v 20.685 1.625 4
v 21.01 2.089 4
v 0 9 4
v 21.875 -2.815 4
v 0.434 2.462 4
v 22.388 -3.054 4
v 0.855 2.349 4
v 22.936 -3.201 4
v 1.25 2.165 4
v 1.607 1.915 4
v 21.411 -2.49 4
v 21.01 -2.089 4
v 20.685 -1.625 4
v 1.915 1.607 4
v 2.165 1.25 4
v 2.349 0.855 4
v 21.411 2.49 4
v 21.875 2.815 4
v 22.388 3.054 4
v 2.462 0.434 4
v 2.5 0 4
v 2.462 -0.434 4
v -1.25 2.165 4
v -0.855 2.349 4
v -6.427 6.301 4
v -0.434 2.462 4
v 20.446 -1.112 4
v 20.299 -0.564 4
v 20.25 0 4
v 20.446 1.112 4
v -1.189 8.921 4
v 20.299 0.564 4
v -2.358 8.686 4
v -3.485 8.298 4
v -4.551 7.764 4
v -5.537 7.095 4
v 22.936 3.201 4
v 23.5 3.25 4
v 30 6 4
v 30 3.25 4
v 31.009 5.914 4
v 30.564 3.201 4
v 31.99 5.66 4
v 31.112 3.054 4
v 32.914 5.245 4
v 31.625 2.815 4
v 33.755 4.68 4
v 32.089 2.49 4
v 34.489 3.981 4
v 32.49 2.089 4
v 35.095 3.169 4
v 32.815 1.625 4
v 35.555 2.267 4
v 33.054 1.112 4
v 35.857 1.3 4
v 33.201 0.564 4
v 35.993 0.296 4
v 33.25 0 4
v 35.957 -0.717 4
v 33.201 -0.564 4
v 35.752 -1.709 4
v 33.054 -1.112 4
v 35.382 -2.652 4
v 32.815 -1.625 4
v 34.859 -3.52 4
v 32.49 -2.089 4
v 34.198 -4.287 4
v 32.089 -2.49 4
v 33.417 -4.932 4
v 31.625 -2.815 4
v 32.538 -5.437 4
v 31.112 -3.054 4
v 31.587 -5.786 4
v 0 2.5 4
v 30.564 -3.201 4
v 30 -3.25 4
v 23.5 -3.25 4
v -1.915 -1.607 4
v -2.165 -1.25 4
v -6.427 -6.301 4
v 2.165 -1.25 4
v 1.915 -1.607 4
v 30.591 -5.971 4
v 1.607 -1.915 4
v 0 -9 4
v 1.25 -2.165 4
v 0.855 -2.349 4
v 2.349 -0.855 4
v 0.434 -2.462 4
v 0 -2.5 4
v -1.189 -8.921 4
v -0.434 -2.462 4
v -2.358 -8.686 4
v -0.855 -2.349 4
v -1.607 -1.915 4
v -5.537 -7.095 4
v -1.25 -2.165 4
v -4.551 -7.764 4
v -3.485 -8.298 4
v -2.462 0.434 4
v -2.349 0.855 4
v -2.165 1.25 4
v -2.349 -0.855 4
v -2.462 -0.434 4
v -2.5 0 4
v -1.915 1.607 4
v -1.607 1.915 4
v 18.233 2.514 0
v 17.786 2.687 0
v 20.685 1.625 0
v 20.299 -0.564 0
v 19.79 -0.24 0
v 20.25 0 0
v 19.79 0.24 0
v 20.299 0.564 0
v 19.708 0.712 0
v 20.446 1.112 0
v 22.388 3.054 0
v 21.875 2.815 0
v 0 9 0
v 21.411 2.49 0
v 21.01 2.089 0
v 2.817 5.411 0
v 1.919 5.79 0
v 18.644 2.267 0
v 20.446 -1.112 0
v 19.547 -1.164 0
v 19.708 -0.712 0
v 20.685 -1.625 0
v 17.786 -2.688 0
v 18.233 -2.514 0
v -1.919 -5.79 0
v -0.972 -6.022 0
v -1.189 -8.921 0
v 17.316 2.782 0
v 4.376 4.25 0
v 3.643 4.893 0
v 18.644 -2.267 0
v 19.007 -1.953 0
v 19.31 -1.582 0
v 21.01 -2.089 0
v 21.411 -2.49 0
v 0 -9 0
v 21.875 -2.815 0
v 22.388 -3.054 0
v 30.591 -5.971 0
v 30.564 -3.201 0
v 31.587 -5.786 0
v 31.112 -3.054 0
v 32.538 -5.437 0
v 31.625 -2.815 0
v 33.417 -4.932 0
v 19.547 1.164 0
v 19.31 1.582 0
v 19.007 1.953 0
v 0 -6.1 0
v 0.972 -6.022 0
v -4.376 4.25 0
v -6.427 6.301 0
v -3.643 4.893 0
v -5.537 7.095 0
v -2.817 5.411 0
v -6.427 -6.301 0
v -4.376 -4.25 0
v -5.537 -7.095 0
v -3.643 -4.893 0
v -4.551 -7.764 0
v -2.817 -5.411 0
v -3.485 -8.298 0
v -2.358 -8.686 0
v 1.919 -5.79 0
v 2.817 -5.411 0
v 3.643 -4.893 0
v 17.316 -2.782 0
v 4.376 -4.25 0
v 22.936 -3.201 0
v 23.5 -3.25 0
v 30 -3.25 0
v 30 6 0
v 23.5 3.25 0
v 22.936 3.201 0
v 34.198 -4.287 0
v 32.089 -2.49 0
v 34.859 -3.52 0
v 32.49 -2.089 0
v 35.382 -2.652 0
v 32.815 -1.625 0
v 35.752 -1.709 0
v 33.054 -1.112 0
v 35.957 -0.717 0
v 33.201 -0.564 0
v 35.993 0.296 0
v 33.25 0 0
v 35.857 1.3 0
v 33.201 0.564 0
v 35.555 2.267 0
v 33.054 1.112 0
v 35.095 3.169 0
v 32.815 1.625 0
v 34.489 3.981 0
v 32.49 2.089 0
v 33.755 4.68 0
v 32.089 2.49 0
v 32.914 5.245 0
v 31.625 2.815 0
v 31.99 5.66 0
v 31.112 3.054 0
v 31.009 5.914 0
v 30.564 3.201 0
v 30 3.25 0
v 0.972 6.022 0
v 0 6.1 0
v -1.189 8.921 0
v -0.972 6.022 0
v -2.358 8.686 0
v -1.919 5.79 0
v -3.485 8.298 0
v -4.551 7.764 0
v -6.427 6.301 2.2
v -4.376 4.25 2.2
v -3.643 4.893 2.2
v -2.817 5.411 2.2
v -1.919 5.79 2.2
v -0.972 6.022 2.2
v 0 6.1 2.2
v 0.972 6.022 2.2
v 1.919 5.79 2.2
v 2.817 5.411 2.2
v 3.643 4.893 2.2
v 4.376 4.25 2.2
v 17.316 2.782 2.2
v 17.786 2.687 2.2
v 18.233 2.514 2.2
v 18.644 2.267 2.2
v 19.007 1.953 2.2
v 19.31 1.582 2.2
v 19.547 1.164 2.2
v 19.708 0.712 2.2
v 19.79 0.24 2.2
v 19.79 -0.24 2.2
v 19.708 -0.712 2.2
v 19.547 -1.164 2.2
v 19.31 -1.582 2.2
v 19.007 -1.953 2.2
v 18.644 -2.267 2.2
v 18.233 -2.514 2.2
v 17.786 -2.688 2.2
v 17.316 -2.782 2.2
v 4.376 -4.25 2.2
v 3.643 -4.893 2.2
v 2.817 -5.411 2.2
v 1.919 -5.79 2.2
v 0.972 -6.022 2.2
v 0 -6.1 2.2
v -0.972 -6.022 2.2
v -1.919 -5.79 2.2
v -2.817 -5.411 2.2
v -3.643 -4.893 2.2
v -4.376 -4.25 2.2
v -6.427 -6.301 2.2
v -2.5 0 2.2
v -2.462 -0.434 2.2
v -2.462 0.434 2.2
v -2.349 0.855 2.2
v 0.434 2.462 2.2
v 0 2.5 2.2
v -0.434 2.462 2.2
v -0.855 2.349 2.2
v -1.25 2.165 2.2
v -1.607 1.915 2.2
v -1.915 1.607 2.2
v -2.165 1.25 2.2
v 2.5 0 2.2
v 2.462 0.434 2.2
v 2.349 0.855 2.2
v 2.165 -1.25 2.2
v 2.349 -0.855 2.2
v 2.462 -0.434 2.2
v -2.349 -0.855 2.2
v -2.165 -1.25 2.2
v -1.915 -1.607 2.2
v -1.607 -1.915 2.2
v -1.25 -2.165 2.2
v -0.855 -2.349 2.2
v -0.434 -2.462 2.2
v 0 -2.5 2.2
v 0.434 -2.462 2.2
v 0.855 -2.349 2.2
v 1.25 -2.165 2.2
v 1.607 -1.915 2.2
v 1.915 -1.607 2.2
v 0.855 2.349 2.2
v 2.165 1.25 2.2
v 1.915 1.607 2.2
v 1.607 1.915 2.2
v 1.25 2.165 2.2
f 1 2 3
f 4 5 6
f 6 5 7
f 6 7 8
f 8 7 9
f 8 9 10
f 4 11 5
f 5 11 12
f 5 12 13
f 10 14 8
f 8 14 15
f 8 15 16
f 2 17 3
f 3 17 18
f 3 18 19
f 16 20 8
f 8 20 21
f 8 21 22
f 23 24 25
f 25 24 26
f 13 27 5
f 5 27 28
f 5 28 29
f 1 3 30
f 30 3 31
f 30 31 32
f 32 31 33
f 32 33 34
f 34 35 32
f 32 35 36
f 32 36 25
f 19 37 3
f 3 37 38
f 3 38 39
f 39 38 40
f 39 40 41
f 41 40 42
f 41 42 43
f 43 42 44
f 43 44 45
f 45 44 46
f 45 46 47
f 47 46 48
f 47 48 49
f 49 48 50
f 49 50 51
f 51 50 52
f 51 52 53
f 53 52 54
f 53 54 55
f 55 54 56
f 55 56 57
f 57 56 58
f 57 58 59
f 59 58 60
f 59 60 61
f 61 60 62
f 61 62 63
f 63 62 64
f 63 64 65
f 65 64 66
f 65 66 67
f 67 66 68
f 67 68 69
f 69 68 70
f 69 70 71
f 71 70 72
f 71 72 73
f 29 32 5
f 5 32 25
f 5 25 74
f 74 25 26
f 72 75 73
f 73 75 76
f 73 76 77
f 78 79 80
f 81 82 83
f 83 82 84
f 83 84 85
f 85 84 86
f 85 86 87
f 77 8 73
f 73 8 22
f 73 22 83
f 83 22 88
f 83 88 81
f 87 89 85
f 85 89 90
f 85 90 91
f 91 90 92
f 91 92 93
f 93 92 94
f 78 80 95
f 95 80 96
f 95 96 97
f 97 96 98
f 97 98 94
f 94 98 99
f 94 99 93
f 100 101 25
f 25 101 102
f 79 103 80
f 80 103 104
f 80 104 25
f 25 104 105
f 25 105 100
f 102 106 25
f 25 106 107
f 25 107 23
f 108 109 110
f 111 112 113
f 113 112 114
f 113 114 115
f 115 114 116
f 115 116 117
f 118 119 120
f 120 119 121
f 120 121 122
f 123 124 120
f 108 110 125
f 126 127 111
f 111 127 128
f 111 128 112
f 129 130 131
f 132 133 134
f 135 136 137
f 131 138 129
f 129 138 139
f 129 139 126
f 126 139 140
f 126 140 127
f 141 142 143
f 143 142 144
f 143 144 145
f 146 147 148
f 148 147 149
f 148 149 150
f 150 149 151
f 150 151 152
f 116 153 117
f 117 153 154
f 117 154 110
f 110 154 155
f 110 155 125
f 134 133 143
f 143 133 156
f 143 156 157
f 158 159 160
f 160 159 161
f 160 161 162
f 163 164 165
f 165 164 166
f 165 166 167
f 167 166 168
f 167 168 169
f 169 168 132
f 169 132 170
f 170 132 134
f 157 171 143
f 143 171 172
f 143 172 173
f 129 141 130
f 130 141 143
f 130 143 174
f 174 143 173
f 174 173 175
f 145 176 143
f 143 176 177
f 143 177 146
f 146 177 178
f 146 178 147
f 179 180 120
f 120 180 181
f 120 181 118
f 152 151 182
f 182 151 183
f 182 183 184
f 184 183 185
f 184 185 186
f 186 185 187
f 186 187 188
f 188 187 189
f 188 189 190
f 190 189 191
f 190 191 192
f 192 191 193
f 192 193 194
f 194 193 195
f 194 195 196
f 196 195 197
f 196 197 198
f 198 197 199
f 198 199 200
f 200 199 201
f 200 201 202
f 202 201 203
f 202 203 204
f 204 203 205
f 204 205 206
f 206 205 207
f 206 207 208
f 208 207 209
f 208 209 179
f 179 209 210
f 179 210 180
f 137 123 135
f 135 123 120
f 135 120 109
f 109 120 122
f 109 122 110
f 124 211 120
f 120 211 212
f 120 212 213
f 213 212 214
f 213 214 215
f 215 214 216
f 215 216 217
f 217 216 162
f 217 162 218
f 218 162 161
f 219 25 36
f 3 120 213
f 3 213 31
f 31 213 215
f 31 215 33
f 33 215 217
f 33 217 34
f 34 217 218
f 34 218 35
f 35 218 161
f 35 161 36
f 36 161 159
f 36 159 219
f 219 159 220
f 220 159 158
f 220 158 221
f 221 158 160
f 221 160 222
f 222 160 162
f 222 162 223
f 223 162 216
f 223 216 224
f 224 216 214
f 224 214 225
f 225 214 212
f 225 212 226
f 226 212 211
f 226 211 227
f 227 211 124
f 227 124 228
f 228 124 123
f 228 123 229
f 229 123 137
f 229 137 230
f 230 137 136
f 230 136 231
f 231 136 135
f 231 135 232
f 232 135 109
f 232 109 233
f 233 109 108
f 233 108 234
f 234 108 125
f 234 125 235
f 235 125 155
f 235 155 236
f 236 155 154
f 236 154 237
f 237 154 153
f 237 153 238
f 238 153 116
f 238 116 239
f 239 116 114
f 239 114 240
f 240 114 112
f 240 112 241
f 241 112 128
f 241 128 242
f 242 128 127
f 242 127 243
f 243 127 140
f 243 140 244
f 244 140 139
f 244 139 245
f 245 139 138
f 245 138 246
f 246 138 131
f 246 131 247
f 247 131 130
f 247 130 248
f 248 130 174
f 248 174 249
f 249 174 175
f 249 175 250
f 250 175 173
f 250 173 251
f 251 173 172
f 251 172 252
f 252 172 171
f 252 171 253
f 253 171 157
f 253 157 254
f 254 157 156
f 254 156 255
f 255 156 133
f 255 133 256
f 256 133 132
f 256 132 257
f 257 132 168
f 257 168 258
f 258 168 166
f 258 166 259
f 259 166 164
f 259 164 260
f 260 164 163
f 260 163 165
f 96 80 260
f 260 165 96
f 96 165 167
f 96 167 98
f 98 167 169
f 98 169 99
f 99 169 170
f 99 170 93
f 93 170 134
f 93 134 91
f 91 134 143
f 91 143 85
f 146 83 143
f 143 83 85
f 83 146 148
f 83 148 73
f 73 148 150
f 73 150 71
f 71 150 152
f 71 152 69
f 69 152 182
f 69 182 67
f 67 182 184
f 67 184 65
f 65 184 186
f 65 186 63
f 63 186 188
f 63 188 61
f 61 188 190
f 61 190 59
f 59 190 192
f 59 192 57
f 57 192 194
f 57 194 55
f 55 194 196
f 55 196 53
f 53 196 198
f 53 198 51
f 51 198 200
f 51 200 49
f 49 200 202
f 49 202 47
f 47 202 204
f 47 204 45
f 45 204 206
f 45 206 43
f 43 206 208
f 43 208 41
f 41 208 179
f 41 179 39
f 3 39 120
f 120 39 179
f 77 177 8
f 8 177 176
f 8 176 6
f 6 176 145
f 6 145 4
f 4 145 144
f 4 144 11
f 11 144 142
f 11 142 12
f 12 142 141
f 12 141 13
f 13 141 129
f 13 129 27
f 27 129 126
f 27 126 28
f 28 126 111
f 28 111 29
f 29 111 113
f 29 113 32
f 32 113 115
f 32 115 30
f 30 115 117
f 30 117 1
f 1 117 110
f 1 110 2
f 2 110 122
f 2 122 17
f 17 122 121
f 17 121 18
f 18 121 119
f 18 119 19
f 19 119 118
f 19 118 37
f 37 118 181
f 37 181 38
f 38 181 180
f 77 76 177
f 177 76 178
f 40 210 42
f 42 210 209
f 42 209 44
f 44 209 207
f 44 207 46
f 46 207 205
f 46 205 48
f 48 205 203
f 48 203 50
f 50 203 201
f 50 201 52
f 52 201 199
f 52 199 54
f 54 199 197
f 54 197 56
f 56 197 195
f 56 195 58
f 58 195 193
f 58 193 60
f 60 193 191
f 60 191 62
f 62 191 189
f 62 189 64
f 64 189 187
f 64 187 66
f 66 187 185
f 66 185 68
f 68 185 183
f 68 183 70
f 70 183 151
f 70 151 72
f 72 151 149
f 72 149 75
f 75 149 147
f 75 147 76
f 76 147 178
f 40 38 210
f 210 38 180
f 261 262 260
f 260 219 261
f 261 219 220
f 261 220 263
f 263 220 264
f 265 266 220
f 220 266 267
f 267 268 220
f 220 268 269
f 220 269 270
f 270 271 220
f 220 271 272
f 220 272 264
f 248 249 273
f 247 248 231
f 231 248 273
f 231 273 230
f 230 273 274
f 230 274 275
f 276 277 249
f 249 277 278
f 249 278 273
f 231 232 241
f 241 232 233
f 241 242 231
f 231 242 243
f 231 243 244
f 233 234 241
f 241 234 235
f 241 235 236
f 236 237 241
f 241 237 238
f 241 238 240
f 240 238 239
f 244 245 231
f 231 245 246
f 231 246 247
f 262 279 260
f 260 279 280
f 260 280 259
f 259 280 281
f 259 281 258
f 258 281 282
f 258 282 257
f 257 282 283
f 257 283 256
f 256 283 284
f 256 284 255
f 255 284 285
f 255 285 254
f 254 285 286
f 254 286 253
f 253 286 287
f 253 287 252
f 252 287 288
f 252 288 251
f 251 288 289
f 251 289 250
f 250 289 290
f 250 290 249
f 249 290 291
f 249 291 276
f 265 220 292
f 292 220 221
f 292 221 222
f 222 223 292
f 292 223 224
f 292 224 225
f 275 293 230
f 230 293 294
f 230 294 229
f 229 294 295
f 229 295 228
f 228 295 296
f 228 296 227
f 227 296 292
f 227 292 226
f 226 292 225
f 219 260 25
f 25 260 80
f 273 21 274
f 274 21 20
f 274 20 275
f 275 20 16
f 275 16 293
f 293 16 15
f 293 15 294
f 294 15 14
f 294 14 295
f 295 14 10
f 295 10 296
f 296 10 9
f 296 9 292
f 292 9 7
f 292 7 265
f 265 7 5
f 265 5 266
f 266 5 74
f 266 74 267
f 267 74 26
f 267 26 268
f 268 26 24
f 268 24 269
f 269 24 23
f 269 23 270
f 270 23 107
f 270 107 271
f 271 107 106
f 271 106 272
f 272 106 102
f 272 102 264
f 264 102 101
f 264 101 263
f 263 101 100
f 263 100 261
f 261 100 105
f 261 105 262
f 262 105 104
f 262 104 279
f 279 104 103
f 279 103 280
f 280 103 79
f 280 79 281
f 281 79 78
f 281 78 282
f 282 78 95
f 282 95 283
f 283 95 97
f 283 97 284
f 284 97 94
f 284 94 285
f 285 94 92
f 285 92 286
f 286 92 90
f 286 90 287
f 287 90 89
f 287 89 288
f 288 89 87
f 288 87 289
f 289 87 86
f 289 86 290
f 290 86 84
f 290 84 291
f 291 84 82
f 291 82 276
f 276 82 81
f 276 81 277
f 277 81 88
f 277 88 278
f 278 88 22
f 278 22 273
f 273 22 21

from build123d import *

# Parameters (mm, degrees)
MAIN_DEPTH          = 4
ESQUISSE2_R         = 2.5
BOSS_EXTRUDE1_DEPTH = 1.8


with BuildPart() as part:
    # Esquisse1 → Main (new body)
    with BuildSketch(Plane.XY):
        with BuildLine():
            Line((-4.375785644, 4.25), (-6.426543071, 6.300757427))
            ThreePointArc((-6.426543071, 6.300757427), (-3.48519606, 8.297795395), (0, 9))
            Line((0, 9), (30, 6))
            ThreePointArc((30, 6), (35.9926952, 0.295980134), (30.591239576, -5.970798587))
            Line((30.591239576, -5.970798587), (0, -9))
            ThreePointArc((0, -9), (-3.48519606, -8.297795395), (-6.426543071, -6.300757427))
            Line((-6.426543071, -6.300757427), (-4.375785644, -4.25))
            ThreePointArc((-4.375785644, -4.25), (0, -6.1), (4.375785644, -4.25))
            Line((4.375785644, -4.25), (17.31559729, -2.78215714))
            ThreePointArc((17.31559729, -2.78215714), (19.8, 0), (17.31559729, 2.78215714))
            Line((17.31559729, 2.78215714), (4.375785644, 4.25))
            ThreePointArc((4.375785644, 4.25), (0, 6.1), (-4.375785644, 4.25))
        make_face()
        with BuildLine():
            Line((23.5, 3.25), (30, 3.25))
            ThreePointArc((30, 3.25), (33.25, 0), (30, -3.25))
            Line((30, -3.25), (23.5, -3.25))
            ThreePointArc((23.5, -3.25), (20.25, 0), (23.5, 3.25))
        make_face(mode=Mode.SUBTRACT)
    extrude(amount=MAIN_DEPTH)

    # Esquisse2 → Boss-Extrude1 (add)
    with BuildSketch(Plane(origin=(0, 0, 4), x_dir=(-1, 0, 0), z_dir=(0, 0, -1))):
        with BuildLine():
            Line((0, -9), (-13.303143835, -7.682697966))
            ThreePointArc((-13.303143835, -7.682697966), (-20.25000193, -0.006506175), (-13.303143835, 7.669685617))
            Line((-13.303143835, 7.669685617), (0, 9))
            ThreePointArc((0, 9), (3.48519606, 8.297795395), (6.426543071, 6.300757427))
            Line((6.426543071, 6.300757427), (6.426543071, -6.300757427))
            ThreePointArc((6.426543071, -6.300757427), (3.48519606, -8.297795395), (0, -9))
        make_face()
        Circle(ESQUISSE2_R, mode=Mode.SUBTRACT)
    extrude(amount=BOSS_EXTRUDE1_DEPTH)


solid = part.part
